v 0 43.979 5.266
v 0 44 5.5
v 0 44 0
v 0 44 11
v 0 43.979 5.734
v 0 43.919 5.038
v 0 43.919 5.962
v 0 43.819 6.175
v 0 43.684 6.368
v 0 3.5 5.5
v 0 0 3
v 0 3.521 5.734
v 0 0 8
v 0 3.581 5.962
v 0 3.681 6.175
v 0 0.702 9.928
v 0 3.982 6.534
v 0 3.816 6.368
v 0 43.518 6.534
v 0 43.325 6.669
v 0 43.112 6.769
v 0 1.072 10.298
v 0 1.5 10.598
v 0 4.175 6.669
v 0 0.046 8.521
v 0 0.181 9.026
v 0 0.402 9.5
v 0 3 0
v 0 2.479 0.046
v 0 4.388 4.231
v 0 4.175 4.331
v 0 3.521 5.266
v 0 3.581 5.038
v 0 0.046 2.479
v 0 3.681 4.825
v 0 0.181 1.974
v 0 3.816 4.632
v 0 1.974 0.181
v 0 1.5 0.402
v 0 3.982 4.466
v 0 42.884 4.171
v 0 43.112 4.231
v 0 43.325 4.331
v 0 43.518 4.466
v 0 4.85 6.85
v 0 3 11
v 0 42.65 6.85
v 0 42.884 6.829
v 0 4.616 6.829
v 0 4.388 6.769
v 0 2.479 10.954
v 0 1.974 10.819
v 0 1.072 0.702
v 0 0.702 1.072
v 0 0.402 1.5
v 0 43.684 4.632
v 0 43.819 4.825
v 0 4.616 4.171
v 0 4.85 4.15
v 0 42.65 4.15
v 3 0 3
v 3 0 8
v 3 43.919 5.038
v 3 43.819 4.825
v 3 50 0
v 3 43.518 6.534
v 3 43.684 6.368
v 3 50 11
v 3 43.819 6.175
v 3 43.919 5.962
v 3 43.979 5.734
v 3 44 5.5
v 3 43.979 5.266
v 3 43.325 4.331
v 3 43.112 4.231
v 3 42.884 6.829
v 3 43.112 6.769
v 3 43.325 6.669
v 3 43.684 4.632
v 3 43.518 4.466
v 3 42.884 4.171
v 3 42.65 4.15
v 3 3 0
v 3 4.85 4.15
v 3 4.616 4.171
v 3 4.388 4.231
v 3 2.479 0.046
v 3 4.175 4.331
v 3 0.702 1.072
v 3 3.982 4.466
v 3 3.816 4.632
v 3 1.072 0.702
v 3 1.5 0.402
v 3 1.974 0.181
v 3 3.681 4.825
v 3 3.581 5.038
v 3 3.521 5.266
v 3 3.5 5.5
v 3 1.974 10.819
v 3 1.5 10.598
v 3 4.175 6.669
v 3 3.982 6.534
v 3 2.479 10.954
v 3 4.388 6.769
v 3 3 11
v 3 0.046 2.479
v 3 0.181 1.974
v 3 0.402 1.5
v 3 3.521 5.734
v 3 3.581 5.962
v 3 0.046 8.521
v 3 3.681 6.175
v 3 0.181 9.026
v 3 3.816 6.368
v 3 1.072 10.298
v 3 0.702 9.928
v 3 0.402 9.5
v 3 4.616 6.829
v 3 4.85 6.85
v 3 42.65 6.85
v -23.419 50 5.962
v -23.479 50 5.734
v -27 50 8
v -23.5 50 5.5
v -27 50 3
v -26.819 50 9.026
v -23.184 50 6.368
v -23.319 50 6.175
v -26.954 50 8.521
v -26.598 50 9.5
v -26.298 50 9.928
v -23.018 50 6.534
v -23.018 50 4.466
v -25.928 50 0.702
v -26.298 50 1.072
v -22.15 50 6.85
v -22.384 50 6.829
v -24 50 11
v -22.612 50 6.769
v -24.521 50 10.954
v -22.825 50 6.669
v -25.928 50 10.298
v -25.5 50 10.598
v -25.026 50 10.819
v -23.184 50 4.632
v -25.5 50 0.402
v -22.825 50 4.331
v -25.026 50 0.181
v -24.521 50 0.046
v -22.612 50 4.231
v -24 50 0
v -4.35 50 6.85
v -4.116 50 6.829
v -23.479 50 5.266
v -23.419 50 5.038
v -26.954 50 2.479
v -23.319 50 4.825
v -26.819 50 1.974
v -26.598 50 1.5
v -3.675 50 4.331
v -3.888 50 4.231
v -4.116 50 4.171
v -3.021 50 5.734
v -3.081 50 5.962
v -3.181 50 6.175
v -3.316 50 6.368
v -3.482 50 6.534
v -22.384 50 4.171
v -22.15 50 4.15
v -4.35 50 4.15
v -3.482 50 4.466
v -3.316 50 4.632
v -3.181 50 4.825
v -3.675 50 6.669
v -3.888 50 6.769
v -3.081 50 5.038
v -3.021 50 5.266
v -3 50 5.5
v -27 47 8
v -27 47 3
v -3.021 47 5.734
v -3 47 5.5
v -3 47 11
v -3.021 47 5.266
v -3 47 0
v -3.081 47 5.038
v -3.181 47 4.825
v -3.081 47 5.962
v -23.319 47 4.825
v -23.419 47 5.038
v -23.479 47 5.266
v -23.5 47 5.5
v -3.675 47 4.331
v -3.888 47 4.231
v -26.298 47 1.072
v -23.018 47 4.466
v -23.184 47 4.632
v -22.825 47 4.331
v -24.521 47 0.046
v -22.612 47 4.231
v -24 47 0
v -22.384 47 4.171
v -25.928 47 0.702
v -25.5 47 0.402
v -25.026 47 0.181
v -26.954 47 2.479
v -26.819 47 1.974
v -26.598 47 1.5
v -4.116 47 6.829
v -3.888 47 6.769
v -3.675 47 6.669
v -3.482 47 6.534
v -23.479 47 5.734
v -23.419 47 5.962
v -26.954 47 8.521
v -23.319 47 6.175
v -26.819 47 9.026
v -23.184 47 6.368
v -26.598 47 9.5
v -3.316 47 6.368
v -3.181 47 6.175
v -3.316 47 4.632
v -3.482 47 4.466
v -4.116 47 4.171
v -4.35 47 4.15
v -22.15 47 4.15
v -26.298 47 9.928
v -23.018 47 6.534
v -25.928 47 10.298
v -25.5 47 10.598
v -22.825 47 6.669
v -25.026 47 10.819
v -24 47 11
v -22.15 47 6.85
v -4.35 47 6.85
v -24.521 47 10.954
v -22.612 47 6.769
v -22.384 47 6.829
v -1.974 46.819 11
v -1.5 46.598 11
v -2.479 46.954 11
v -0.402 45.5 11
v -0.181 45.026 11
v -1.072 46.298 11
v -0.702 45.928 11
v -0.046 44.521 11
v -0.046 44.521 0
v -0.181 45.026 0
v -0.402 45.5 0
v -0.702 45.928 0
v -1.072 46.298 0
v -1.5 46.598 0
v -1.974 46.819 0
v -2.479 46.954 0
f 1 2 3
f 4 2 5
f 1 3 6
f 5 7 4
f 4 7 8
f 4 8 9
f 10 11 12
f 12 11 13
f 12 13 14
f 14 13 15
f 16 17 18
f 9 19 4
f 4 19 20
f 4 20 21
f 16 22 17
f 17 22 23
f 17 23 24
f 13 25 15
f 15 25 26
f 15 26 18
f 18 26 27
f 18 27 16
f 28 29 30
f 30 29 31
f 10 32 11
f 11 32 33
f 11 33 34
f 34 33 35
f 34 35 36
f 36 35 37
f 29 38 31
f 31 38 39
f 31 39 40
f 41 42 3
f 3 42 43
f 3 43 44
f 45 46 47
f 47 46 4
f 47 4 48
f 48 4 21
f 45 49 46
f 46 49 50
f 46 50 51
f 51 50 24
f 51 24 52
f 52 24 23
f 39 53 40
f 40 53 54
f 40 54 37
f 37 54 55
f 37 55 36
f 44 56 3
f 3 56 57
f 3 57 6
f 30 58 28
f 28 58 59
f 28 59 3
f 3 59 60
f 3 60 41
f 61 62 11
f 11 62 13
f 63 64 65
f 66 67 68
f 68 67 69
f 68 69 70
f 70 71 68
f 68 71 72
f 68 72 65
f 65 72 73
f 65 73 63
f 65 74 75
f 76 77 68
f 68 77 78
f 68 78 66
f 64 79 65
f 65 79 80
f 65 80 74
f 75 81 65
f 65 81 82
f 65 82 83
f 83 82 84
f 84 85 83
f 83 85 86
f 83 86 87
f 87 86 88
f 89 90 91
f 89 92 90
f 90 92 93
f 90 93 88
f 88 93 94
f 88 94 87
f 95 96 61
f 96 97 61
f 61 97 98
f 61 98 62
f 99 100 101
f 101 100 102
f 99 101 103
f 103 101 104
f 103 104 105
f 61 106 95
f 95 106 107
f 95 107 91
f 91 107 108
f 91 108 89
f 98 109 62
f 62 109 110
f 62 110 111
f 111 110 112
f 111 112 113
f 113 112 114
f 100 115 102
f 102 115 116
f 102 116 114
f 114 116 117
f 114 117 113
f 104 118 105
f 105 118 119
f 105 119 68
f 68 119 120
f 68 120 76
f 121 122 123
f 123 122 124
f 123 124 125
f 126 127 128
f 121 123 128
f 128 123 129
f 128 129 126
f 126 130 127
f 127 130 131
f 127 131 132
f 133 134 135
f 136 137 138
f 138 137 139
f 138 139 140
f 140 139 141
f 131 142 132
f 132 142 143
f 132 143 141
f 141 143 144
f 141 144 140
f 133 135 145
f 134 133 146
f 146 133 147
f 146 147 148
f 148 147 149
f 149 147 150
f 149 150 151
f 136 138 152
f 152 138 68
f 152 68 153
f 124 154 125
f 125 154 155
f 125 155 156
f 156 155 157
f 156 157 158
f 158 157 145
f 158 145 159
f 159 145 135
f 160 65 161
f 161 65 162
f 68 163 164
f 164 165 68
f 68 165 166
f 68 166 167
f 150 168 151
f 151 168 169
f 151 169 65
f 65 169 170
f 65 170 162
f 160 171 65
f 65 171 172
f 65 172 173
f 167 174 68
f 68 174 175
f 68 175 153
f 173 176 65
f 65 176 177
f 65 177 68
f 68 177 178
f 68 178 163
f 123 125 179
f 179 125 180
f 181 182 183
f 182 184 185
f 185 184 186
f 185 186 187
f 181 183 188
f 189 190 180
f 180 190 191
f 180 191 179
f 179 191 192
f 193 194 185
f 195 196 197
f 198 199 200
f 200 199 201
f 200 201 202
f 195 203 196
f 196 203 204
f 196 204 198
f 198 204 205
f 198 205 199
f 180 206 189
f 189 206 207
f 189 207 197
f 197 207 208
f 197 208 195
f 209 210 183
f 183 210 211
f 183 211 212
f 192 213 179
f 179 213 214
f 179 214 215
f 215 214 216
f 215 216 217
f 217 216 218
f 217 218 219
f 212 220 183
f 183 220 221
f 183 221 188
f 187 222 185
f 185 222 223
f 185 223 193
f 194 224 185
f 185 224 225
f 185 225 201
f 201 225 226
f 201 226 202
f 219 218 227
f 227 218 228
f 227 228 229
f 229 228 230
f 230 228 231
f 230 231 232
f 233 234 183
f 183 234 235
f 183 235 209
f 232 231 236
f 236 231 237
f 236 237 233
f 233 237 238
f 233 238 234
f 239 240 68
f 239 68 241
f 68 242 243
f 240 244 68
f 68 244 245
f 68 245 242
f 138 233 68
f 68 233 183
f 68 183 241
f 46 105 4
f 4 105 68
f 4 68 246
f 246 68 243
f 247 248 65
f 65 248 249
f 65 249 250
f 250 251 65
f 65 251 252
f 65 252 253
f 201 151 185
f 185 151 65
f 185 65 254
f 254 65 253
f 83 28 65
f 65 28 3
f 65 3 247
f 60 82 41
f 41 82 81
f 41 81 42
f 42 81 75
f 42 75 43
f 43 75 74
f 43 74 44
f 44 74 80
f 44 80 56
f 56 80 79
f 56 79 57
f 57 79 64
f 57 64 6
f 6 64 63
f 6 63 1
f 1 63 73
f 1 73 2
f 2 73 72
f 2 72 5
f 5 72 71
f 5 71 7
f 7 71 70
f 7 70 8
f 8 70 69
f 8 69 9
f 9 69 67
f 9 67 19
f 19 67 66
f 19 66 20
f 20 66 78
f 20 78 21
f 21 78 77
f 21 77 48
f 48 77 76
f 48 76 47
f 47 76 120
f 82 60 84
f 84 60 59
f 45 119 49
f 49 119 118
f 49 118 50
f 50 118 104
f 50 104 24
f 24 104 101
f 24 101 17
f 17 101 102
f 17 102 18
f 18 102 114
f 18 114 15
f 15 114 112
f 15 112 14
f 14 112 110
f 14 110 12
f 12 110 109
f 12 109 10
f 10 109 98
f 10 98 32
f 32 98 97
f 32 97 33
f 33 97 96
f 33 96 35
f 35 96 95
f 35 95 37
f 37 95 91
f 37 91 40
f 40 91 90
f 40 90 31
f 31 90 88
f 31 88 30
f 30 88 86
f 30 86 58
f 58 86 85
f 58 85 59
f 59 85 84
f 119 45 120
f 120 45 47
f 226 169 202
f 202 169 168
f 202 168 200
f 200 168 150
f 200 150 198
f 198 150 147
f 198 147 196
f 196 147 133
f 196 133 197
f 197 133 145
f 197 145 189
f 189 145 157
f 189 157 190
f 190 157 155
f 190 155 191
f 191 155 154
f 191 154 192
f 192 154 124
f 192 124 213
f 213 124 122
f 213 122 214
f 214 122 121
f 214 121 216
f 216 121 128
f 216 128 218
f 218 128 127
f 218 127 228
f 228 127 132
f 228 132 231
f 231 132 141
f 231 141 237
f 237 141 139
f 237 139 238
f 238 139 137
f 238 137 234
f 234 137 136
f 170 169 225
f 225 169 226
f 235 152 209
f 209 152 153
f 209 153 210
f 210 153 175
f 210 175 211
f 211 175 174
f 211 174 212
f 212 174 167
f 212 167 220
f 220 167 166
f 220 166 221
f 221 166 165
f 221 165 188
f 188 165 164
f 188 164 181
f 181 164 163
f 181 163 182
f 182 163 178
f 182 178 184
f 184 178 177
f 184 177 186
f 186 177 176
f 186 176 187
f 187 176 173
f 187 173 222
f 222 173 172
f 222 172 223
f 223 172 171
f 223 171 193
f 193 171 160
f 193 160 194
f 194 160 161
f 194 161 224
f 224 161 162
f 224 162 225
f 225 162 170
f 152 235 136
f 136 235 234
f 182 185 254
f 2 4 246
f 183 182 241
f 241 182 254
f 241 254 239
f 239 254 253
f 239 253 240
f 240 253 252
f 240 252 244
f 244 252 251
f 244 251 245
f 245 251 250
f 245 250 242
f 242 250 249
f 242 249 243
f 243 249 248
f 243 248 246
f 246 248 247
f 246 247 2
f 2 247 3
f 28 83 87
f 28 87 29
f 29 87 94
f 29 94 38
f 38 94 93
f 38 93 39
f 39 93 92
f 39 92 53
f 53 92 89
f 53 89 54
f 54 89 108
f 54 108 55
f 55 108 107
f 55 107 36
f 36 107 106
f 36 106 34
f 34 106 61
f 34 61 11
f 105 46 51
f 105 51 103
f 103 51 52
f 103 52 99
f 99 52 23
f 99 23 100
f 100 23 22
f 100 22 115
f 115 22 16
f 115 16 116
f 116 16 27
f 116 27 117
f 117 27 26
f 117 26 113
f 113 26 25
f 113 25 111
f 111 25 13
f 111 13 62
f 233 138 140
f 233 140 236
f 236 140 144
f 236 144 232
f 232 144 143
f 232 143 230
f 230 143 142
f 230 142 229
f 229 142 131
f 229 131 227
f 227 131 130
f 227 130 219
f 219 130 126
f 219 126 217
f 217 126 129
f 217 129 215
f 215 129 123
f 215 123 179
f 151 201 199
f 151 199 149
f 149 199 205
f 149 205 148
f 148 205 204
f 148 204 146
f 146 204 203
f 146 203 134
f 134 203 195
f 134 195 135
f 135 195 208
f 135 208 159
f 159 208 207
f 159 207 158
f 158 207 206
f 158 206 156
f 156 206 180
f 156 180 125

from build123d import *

# Parameters (mm, degrees)
BOSS_EXTRUDE1_DEPTH = 11
CUT_EXTRUDE1_DEPTH  = 60.338014797
CUT_EXTRUDE2_DEPTH  = 58.879184514
FILLET1_R           = 3
FILLET2_R           = 3


with BuildPart() as part:
    # Sketch1 → Boss-Extrude1 (new body)
    with BuildSketch(Plane.XY):
        Polygon((0, 0), (3, 0), (3, 50), (-27, 50), (-27, 47), (0, 47), align=None)
    extrude(amount=BOSS_EXTRUDE1_DEPTH)

    # Sketch6 → Cut-Extrude1 (cut, through all)
    with BuildSketch(Plane(origin=(3, 0, 0), x_dir=(0, 0, -1), z_dir=(1, 0, 0))):
        with BuildLine():
            Line((-4.15, 42.65), (-4.15, 4.85))
            ThreePointArc((-4.15, 4.85), (-5.5, 3.5), (-6.85, 4.85))
            Line((-6.85, 4.85), (-6.85, 42.65))
            ThreePointArc((-6.85, 42.65), (-5.5, 44), (-4.15, 42.65))
        make_face()
    extrude(amount=-CUT_EXTRUDE1_DEPTH, mode=Mode.SUBTRACT)

    # Sketch7 → Cut-Extrude2 (cut, through all)
    with BuildSketch(Plane(origin=(0, 50, 0), x_dir=(1, 0, 0), z_dir=(0, 1, 0))):
        with BuildLine():
            Line((-22.15, -4.15), (-4.35, -4.15))
            ThreePointArc((-4.35, -4.15), (-3, -5.5), (-4.35, -6.85))
            Line((-4.35, -6.85), (-22.15, -6.85))
            ThreePointArc((-22.15, -6.85), (-23.5, -5.5), (-22.15, -4.15))
        make_face()
    extrude(amount=-CUT_EXTRUDE2_DEPTH, mode=Mode.SUBTRACT)

    # Fillet1
    fillet1_edges = [part.edges().sort_by_distance(p)[0] for p in [
        (0, 47, 5.5),
    ]]
    fillet(fillet1_edges, radius=FILLET1_R - 0.0001)  # a hair under: the kernel refuses the full size

    # Fillet2
    fillet2_edges = [part.edges().sort_by_distance(p)[0] for p in [
        (-27, 48.5, 11),
        (-27, 48.5, 0),
        (1.5, 0, 0),
        (1.5, 0, 11),
    ]]
    fillet(fillet2_edges, radius=FILLET2_R)


solid = part.part
